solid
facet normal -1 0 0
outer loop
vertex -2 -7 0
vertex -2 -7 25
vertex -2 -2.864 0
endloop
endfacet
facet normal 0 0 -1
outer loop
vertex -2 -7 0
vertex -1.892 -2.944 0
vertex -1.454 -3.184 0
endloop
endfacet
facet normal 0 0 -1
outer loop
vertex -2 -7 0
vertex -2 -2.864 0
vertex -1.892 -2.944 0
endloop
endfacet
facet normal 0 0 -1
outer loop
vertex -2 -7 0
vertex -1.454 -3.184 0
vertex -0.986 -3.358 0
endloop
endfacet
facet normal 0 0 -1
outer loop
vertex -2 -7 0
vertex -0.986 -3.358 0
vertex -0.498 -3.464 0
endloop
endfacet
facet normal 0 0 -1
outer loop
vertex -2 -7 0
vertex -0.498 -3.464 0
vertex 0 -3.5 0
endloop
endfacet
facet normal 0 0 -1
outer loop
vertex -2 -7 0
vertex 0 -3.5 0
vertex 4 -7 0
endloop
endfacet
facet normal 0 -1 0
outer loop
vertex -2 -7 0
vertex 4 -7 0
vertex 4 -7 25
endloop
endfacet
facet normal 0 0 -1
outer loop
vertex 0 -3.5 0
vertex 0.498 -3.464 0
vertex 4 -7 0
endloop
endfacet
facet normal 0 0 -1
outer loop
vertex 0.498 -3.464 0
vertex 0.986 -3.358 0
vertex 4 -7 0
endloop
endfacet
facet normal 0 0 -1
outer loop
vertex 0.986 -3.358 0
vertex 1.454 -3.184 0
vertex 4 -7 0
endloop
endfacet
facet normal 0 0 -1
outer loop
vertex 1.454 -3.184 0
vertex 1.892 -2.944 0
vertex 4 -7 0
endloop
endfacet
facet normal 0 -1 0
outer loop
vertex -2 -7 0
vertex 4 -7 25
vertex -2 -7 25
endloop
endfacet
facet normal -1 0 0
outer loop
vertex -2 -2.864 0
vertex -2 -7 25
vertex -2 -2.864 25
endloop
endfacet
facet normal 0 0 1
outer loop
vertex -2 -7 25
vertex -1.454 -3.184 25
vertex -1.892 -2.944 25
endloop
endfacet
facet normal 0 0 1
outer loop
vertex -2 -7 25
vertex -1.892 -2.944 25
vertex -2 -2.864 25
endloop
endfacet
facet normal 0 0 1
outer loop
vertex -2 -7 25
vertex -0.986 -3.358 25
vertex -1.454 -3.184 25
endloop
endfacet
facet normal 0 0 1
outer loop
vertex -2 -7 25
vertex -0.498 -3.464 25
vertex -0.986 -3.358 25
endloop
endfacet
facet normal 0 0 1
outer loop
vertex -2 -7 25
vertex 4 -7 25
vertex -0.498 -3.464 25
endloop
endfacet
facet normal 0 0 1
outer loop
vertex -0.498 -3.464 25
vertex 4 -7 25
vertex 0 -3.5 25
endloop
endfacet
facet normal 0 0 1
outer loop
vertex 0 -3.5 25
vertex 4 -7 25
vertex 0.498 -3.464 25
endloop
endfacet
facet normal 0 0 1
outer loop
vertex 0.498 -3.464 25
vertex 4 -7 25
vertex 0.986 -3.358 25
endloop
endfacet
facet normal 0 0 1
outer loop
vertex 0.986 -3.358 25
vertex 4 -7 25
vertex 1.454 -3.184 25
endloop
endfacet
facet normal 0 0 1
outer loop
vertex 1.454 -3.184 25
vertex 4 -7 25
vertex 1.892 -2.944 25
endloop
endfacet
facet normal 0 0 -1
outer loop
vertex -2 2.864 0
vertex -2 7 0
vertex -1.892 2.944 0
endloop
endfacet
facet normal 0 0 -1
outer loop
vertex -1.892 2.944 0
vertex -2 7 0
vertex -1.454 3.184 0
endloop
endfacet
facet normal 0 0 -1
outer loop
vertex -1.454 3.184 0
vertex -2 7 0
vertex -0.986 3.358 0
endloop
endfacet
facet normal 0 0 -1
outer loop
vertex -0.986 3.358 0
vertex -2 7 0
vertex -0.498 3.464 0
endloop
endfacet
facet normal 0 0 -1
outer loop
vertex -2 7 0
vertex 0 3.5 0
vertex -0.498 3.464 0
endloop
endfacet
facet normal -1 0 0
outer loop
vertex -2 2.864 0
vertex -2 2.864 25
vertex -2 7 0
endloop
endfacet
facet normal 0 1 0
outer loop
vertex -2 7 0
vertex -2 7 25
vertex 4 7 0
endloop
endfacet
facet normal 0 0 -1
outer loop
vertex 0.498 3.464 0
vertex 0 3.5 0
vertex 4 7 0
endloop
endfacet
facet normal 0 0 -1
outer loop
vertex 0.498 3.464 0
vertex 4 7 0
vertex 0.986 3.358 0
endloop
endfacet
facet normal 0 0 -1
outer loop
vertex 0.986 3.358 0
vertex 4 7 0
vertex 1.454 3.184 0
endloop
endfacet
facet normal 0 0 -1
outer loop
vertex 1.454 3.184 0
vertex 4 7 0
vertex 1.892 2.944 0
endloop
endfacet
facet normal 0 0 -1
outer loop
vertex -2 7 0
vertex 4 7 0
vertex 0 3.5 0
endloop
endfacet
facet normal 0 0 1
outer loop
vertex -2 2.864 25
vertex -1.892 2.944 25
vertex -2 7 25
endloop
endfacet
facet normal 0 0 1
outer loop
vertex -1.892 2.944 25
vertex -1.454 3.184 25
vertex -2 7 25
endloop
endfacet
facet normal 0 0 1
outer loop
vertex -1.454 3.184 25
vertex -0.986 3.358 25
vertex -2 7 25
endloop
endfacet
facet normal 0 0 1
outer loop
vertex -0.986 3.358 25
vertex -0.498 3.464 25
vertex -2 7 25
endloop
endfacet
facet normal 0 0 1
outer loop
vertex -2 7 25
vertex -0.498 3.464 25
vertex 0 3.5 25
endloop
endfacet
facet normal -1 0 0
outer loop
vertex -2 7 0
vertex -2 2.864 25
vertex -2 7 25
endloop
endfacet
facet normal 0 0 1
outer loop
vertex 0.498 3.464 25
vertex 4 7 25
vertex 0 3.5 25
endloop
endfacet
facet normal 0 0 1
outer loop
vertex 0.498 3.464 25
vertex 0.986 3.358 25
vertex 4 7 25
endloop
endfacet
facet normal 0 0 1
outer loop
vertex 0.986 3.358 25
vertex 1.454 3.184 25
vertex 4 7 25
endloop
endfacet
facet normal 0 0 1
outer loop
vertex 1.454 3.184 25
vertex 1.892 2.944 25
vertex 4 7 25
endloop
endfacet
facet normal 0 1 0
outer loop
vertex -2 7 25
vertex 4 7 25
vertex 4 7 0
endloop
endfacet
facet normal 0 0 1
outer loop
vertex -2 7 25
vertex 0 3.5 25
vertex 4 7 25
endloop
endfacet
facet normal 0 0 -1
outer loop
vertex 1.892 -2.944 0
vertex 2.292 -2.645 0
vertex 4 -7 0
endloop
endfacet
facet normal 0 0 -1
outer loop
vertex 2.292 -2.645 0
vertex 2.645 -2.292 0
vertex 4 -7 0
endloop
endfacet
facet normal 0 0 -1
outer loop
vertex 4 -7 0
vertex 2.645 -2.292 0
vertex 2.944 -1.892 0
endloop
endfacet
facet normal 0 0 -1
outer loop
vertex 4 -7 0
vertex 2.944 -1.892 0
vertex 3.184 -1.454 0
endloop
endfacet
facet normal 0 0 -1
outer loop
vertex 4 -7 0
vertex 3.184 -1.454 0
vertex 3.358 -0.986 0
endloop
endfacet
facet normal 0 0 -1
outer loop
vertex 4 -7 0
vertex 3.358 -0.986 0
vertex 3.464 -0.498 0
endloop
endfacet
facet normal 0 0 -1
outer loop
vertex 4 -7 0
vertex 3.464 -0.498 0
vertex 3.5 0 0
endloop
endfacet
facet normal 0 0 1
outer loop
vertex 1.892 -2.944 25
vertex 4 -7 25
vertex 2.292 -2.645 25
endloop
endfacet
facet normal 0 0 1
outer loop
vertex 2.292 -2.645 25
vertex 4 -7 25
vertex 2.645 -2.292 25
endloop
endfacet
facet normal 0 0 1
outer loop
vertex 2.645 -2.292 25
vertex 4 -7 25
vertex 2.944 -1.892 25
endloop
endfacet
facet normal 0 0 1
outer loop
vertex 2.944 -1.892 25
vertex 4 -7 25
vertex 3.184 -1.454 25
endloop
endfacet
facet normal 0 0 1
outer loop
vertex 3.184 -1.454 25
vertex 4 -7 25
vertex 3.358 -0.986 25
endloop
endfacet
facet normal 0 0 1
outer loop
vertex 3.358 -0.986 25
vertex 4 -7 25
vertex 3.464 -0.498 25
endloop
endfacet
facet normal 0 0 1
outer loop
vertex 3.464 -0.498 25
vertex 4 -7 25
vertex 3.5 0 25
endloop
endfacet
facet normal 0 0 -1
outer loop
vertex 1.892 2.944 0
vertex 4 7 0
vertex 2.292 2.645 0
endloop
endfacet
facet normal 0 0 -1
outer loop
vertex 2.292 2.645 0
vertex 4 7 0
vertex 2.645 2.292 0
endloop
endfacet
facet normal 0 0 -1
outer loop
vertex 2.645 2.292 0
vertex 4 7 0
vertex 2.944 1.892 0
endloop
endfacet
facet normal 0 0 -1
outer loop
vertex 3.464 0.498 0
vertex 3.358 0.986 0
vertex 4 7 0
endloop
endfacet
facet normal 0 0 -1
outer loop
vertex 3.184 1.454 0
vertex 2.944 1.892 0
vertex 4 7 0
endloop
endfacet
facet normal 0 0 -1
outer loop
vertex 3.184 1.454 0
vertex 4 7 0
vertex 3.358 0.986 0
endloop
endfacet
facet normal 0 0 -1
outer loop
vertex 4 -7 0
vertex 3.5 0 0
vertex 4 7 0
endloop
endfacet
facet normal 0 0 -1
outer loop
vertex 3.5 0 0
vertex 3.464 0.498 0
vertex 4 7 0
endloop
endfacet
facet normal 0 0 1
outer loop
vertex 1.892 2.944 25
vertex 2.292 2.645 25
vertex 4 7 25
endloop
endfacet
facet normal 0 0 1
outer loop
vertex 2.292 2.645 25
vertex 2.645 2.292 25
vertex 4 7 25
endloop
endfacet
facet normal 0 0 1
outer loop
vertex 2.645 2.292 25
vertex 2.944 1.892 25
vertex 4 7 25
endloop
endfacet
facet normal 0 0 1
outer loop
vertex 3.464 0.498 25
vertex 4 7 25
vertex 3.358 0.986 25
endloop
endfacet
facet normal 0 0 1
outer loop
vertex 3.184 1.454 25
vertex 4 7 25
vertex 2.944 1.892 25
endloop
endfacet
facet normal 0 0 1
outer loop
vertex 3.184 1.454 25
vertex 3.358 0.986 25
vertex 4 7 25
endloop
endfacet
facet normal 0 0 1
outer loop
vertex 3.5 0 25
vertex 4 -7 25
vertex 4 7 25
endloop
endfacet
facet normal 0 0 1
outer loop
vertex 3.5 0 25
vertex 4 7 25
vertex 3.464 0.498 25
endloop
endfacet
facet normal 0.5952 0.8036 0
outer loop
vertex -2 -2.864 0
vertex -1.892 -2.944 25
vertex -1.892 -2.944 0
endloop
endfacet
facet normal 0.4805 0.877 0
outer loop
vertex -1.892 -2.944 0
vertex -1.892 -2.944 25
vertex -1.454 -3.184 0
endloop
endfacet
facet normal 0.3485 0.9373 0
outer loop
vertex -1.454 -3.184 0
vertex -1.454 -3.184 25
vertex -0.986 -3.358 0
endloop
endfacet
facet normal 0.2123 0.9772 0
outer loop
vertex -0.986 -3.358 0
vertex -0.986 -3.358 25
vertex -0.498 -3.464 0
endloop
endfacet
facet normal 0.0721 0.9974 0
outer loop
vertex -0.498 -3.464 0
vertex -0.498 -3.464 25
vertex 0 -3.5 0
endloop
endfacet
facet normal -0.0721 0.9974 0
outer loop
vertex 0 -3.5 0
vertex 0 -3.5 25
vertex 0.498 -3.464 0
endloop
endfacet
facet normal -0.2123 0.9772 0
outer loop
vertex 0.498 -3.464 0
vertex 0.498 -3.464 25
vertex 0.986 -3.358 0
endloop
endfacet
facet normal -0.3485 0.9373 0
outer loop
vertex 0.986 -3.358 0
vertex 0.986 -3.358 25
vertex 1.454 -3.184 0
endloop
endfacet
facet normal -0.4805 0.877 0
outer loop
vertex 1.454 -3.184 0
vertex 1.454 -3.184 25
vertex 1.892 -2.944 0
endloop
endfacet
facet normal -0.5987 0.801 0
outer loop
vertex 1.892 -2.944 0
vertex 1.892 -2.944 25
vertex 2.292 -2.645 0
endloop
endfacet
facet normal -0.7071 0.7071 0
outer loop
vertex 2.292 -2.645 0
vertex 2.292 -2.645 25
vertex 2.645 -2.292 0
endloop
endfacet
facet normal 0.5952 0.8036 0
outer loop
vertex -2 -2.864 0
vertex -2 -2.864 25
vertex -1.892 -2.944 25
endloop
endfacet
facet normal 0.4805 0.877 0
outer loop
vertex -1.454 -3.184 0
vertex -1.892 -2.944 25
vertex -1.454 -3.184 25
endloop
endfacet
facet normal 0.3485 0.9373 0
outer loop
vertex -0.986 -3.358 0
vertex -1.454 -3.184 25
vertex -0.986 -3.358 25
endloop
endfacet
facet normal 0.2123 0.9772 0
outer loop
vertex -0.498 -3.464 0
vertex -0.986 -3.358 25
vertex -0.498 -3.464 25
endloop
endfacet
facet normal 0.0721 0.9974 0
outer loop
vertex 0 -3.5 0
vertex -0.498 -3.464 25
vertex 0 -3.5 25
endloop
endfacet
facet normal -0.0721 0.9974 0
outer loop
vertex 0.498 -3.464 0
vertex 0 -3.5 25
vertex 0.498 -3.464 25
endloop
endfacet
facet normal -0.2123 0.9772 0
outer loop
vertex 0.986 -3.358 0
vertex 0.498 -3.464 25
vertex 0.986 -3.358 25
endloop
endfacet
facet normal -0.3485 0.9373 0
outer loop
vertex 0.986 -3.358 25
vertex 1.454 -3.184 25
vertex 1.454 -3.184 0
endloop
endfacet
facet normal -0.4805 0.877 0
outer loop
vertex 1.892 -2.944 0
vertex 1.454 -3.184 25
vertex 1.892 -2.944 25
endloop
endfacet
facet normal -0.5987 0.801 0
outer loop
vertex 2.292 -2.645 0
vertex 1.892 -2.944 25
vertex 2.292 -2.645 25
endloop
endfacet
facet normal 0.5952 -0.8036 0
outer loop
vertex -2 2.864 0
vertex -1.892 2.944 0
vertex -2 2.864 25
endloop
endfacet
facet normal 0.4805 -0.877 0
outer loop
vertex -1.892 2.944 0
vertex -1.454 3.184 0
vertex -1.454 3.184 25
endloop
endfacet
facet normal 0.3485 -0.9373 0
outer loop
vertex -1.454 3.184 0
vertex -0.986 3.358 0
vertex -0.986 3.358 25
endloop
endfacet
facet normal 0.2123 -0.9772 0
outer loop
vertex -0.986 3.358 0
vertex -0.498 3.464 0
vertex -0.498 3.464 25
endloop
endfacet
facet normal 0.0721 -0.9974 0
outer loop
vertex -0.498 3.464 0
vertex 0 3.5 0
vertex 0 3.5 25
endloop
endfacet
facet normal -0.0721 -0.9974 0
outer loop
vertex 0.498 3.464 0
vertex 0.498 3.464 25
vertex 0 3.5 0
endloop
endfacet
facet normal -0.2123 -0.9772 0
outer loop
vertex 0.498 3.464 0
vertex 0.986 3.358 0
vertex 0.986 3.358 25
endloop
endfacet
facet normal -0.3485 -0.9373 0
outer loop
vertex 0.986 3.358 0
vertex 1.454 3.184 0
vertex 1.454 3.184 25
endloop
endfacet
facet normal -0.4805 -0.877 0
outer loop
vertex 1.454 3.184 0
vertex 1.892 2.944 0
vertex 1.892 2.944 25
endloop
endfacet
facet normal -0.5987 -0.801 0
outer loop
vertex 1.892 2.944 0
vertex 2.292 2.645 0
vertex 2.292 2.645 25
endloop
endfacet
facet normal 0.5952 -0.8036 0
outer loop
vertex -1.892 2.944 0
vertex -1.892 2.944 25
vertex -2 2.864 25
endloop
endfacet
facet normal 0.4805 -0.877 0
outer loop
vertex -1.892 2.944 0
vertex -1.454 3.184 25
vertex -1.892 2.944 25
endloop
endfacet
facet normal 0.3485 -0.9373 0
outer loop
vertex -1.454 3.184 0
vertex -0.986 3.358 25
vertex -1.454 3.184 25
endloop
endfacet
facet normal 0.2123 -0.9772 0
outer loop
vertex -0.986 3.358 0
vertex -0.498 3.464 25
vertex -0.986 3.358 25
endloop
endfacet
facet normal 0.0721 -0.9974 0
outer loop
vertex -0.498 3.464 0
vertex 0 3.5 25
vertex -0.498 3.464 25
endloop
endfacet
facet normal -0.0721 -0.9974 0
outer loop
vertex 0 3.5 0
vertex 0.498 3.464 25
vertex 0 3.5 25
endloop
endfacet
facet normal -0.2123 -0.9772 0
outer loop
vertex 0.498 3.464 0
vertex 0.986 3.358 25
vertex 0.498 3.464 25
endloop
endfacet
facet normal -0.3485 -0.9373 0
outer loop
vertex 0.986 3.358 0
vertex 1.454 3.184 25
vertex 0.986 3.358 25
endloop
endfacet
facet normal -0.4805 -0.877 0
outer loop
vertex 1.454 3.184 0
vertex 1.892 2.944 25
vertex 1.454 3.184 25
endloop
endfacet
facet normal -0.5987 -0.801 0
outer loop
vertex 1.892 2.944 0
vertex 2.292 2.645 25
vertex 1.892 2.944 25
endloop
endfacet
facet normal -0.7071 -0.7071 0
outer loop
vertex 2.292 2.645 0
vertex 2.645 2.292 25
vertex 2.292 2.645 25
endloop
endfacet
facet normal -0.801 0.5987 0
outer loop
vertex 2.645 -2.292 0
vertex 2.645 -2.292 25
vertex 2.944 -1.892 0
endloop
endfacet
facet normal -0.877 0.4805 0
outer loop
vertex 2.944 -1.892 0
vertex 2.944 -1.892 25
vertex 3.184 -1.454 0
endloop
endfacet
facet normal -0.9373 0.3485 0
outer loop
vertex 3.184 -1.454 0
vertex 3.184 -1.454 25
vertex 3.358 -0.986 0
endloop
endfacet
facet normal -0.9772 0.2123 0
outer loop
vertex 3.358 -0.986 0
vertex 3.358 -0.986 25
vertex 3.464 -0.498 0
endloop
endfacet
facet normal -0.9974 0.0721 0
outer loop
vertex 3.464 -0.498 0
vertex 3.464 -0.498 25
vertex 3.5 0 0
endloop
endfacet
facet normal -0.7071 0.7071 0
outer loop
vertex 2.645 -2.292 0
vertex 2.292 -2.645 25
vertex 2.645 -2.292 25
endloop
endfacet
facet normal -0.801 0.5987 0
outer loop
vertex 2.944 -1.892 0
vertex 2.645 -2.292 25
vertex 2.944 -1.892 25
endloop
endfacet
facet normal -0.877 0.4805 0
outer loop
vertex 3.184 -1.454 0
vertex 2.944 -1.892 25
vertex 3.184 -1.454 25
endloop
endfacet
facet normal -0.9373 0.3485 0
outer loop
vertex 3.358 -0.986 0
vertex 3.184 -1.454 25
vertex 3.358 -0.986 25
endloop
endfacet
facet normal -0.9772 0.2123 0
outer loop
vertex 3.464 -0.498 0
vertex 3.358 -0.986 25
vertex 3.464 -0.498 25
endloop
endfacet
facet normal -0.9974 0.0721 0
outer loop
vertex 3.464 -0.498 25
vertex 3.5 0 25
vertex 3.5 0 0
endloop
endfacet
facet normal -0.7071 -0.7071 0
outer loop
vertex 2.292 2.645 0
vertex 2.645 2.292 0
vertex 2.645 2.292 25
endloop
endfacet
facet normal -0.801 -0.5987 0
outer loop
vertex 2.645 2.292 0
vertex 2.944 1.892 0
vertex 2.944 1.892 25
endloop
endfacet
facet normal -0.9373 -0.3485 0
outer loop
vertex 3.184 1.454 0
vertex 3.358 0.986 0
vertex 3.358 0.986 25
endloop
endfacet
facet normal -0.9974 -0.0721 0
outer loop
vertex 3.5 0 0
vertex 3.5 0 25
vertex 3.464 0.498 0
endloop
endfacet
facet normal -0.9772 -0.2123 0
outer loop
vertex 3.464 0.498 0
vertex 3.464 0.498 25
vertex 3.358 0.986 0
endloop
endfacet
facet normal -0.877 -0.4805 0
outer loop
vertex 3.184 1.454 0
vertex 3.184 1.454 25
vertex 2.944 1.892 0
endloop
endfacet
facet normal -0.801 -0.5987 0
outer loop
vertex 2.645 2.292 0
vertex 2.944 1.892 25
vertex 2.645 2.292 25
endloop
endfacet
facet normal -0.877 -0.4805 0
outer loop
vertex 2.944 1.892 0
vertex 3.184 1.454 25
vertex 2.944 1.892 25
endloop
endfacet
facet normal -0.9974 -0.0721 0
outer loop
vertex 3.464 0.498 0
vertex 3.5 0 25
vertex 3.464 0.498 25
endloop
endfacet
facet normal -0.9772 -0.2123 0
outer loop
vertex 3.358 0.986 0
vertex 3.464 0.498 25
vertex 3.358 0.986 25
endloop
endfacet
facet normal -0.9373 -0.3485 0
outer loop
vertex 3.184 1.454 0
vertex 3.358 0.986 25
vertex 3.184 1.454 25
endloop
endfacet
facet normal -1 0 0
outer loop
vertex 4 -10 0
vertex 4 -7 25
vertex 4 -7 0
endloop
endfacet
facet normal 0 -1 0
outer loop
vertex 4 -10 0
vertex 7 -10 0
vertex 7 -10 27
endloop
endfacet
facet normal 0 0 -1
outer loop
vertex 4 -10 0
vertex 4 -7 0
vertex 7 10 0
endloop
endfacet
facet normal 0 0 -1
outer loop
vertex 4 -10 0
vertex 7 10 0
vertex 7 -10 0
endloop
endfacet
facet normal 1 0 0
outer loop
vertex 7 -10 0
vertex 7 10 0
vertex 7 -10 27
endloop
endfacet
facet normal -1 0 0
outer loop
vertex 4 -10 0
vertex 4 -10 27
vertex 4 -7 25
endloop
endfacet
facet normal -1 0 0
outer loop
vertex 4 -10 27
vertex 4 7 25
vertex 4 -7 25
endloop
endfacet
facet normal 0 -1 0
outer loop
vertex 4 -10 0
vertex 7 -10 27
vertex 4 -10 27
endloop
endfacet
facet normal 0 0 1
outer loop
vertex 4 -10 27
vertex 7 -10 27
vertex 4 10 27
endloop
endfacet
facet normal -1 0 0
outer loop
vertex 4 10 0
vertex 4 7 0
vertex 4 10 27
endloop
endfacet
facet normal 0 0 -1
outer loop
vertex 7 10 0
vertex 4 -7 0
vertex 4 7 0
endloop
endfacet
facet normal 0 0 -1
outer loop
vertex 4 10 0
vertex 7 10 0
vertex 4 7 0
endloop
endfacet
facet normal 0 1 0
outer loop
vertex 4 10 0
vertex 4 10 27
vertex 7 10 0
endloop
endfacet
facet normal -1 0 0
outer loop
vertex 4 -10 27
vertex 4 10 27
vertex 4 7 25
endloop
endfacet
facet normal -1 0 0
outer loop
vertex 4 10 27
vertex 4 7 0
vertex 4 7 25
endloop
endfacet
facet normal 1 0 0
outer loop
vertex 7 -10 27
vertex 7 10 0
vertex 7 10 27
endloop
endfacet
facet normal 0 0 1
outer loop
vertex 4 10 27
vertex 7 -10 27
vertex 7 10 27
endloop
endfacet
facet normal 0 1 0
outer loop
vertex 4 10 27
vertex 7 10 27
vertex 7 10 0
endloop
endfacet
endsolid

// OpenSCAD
$fa = 1;
$fs = 0.5;
difference(){

translate([-2,-7,0]) {
color("red")
cube(size = [6,14,25], center = false);
}
cylinder(h = 26, d = 7, center = false);
}


//back plate
translate([4,-10,0]) {
color("blue")
cube(size = [3,20,27], center = false);
}
